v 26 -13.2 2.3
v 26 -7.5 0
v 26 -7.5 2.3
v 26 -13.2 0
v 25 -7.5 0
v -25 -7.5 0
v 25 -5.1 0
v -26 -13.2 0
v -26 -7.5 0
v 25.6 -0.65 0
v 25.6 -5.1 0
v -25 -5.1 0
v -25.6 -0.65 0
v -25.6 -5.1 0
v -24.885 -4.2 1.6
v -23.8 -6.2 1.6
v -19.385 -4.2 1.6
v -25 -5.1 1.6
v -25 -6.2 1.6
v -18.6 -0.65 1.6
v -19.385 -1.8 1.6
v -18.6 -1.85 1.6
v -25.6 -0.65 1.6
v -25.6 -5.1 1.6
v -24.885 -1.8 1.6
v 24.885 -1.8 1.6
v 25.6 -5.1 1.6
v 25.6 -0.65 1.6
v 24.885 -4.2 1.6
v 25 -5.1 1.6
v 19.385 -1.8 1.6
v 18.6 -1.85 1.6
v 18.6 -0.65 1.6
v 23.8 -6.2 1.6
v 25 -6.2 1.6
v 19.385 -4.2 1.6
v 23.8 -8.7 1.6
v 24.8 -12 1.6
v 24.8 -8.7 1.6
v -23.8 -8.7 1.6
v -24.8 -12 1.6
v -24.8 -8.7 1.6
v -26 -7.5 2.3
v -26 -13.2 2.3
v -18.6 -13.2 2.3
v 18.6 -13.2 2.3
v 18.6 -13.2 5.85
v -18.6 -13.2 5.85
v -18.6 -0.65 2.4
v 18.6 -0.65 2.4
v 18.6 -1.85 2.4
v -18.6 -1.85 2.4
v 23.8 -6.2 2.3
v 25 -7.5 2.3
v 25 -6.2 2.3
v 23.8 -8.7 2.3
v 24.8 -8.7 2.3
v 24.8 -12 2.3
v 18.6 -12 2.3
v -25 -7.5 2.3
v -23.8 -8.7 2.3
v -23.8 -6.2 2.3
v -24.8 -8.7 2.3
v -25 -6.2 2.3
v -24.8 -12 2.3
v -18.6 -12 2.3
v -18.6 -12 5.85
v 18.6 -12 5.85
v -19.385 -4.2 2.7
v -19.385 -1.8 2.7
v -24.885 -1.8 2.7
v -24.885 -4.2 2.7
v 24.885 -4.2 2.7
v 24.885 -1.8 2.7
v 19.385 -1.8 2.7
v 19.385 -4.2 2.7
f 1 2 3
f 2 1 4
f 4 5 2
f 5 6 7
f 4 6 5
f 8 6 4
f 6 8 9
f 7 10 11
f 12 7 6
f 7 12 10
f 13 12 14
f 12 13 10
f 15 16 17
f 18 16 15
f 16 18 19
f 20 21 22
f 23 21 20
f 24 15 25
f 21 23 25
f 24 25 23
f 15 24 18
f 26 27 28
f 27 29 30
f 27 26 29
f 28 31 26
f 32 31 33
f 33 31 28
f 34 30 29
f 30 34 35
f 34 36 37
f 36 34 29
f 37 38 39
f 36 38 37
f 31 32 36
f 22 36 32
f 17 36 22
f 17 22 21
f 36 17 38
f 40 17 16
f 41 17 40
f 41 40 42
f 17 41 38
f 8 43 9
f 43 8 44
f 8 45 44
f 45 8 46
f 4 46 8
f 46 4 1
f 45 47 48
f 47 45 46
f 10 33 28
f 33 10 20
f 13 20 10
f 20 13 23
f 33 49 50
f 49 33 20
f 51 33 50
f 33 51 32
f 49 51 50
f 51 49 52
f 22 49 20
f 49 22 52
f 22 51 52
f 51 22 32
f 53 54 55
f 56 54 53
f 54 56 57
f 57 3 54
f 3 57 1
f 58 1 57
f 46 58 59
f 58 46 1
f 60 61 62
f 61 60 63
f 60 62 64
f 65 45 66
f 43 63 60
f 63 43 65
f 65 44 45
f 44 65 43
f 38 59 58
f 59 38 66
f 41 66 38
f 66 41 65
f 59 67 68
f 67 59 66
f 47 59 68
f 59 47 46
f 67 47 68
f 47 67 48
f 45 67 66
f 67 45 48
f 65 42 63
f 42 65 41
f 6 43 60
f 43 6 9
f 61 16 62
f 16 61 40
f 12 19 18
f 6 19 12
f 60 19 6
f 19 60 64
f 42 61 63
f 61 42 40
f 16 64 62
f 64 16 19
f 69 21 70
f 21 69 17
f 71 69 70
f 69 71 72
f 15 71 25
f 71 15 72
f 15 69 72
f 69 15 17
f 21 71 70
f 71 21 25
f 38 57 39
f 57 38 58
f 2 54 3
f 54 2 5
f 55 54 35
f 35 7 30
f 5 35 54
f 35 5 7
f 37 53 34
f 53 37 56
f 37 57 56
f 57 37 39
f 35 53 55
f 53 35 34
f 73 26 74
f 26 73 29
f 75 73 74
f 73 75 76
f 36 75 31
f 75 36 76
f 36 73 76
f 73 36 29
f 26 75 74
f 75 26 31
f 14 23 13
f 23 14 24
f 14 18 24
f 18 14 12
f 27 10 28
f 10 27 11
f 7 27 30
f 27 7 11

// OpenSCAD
// DB23 v0.6 alternative lid with PCB support wall. Fit prototype.
// Standalone snapshot recovered from the checked central-wall correction.
// Default: roof-down print coordinates. Set assembly=true for STEP alignment.
assembly=false;
module cap_assembly(){
 difference(){
  union(){
   translate([-26.0, 0.65, 11.0]) cube([52.0, 12.549999999999999, 1.5999999999999996]);
   translate([-18.6, 0.65, 10.2]) cube([37.2, 1.2000000000000002, 0.8300000000000001]);
   translate([-26.0, 12.0, 10.3]) cube([52.0, 1.1999999999999993, 0.7299999999999986]);
   translate([-18.6, 12.0, 6.75]) cube([37.2, 1.1999999999999993, 4.279999999999999]);
   translate([-26.0, 7.5, 10.3]) cube([1.1999999999999993, 5.699999999999999, 0.7299999999999986]);
   translate([-25.0, 6.2, 10.3]) cube([1.1999999999999993, 2.499999999999999, 0.7299999999999986]);
   translate([-24.885, 1.8, 9.9]) cube([5.5, 2.4000000000000004, 1.129999999999999]);
   translate([24.8, 7.5, 10.3]) cube([1.1999999999999993, 5.699999999999999, 0.7299999999999986]);
   translate([23.8, 6.2, 10.3]) cube([1.1999999999999993, 2.499999999999999, 0.7299999999999986]);
   translate([19.385, 1.8, 9.9]) cube([5.5, 2.4000000000000004, 1.129999999999999]);
  }
  translate([-26.03, 0.62, 10.270000000000001]) cube([0.4299999999999997, 4.4799999999999995, 2.3599999999999977]);
  translate([-26.03, 5.1, 10.270000000000001]) cube([1.0300000000000011, 2.4000000000000004, 2.3599999999999977]);
  translate([25.6, 0.62, 10.270000000000001]) cube([0.4299999999999997, 4.4799999999999995, 2.3599999999999977]);
  translate([25.0, 5.1, 10.270000000000001]) cube([1.0300000000000011, 2.4000000000000004, 2.3599999999999977]);
 }
}

module cap(){
 translate([0, 0, 12.6]) rotate([180, 0, 0]) {
  difference(){
   union(){
    translate([-26.0, 0.65, 11.0]) cube([52.0, 12.549999999999999, 1.5999999999999996]);
    translate([-18.6, 0.65, 10.2]) cube([37.2, 1.2000000000000002, 0.8300000000000001]);
    translate([-26.0, 12.0, 10.3]) cube([52.0, 1.1999999999999993, 0.7299999999999986]);
    translate([-18.6, 12.0, 6.75]) cube([37.2, 1.1999999999999993, 4.279999999999999]);
    translate([-26.0, 7.5, 10.3]) cube([1.1999999999999993, 5.699999999999999, 0.7299999999999986]);
    translate([-25.0, 6.2, 10.3]) cube([1.1999999999999993, 2.499999999999999, 0.7299999999999986]);
    translate([-24.885, 1.8, 9.9]) cube([5.5, 2.4000000000000004, 1.129999999999999]);
    translate([24.8, 7.5, 10.3]) cube([1.1999999999999993, 5.699999999999999, 0.7299999999999986]);
    translate([23.8, 6.2, 10.3]) cube([1.1999999999999993, 2.499999999999999, 0.7299999999999986]);
    translate([19.385, 1.8, 9.9]) cube([5.5, 2.4000000000000004, 1.129999999999999]);
   }
   translate([-26.03, 0.62, 10.270000000000001]) cube([0.4299999999999997, 4.4799999999999995, 2.3599999999999977]);
   translate([-26.03, 5.1, 10.270000000000001]) cube([1.0300000000000011, 2.4000000000000004, 2.3599999999999977]);
   translate([25.6, 0.62, 10.270000000000001]) cube([0.4299999999999997, 4.4799999999999995, 2.3599999999999977]);
   translate([25.0, 5.1, 10.270000000000001]) cube([1.0300000000000011, 2.4000000000000004, 2.3599999999999977]);
  }
 }
}


if(assembly) cap_assembly(); else cap();
